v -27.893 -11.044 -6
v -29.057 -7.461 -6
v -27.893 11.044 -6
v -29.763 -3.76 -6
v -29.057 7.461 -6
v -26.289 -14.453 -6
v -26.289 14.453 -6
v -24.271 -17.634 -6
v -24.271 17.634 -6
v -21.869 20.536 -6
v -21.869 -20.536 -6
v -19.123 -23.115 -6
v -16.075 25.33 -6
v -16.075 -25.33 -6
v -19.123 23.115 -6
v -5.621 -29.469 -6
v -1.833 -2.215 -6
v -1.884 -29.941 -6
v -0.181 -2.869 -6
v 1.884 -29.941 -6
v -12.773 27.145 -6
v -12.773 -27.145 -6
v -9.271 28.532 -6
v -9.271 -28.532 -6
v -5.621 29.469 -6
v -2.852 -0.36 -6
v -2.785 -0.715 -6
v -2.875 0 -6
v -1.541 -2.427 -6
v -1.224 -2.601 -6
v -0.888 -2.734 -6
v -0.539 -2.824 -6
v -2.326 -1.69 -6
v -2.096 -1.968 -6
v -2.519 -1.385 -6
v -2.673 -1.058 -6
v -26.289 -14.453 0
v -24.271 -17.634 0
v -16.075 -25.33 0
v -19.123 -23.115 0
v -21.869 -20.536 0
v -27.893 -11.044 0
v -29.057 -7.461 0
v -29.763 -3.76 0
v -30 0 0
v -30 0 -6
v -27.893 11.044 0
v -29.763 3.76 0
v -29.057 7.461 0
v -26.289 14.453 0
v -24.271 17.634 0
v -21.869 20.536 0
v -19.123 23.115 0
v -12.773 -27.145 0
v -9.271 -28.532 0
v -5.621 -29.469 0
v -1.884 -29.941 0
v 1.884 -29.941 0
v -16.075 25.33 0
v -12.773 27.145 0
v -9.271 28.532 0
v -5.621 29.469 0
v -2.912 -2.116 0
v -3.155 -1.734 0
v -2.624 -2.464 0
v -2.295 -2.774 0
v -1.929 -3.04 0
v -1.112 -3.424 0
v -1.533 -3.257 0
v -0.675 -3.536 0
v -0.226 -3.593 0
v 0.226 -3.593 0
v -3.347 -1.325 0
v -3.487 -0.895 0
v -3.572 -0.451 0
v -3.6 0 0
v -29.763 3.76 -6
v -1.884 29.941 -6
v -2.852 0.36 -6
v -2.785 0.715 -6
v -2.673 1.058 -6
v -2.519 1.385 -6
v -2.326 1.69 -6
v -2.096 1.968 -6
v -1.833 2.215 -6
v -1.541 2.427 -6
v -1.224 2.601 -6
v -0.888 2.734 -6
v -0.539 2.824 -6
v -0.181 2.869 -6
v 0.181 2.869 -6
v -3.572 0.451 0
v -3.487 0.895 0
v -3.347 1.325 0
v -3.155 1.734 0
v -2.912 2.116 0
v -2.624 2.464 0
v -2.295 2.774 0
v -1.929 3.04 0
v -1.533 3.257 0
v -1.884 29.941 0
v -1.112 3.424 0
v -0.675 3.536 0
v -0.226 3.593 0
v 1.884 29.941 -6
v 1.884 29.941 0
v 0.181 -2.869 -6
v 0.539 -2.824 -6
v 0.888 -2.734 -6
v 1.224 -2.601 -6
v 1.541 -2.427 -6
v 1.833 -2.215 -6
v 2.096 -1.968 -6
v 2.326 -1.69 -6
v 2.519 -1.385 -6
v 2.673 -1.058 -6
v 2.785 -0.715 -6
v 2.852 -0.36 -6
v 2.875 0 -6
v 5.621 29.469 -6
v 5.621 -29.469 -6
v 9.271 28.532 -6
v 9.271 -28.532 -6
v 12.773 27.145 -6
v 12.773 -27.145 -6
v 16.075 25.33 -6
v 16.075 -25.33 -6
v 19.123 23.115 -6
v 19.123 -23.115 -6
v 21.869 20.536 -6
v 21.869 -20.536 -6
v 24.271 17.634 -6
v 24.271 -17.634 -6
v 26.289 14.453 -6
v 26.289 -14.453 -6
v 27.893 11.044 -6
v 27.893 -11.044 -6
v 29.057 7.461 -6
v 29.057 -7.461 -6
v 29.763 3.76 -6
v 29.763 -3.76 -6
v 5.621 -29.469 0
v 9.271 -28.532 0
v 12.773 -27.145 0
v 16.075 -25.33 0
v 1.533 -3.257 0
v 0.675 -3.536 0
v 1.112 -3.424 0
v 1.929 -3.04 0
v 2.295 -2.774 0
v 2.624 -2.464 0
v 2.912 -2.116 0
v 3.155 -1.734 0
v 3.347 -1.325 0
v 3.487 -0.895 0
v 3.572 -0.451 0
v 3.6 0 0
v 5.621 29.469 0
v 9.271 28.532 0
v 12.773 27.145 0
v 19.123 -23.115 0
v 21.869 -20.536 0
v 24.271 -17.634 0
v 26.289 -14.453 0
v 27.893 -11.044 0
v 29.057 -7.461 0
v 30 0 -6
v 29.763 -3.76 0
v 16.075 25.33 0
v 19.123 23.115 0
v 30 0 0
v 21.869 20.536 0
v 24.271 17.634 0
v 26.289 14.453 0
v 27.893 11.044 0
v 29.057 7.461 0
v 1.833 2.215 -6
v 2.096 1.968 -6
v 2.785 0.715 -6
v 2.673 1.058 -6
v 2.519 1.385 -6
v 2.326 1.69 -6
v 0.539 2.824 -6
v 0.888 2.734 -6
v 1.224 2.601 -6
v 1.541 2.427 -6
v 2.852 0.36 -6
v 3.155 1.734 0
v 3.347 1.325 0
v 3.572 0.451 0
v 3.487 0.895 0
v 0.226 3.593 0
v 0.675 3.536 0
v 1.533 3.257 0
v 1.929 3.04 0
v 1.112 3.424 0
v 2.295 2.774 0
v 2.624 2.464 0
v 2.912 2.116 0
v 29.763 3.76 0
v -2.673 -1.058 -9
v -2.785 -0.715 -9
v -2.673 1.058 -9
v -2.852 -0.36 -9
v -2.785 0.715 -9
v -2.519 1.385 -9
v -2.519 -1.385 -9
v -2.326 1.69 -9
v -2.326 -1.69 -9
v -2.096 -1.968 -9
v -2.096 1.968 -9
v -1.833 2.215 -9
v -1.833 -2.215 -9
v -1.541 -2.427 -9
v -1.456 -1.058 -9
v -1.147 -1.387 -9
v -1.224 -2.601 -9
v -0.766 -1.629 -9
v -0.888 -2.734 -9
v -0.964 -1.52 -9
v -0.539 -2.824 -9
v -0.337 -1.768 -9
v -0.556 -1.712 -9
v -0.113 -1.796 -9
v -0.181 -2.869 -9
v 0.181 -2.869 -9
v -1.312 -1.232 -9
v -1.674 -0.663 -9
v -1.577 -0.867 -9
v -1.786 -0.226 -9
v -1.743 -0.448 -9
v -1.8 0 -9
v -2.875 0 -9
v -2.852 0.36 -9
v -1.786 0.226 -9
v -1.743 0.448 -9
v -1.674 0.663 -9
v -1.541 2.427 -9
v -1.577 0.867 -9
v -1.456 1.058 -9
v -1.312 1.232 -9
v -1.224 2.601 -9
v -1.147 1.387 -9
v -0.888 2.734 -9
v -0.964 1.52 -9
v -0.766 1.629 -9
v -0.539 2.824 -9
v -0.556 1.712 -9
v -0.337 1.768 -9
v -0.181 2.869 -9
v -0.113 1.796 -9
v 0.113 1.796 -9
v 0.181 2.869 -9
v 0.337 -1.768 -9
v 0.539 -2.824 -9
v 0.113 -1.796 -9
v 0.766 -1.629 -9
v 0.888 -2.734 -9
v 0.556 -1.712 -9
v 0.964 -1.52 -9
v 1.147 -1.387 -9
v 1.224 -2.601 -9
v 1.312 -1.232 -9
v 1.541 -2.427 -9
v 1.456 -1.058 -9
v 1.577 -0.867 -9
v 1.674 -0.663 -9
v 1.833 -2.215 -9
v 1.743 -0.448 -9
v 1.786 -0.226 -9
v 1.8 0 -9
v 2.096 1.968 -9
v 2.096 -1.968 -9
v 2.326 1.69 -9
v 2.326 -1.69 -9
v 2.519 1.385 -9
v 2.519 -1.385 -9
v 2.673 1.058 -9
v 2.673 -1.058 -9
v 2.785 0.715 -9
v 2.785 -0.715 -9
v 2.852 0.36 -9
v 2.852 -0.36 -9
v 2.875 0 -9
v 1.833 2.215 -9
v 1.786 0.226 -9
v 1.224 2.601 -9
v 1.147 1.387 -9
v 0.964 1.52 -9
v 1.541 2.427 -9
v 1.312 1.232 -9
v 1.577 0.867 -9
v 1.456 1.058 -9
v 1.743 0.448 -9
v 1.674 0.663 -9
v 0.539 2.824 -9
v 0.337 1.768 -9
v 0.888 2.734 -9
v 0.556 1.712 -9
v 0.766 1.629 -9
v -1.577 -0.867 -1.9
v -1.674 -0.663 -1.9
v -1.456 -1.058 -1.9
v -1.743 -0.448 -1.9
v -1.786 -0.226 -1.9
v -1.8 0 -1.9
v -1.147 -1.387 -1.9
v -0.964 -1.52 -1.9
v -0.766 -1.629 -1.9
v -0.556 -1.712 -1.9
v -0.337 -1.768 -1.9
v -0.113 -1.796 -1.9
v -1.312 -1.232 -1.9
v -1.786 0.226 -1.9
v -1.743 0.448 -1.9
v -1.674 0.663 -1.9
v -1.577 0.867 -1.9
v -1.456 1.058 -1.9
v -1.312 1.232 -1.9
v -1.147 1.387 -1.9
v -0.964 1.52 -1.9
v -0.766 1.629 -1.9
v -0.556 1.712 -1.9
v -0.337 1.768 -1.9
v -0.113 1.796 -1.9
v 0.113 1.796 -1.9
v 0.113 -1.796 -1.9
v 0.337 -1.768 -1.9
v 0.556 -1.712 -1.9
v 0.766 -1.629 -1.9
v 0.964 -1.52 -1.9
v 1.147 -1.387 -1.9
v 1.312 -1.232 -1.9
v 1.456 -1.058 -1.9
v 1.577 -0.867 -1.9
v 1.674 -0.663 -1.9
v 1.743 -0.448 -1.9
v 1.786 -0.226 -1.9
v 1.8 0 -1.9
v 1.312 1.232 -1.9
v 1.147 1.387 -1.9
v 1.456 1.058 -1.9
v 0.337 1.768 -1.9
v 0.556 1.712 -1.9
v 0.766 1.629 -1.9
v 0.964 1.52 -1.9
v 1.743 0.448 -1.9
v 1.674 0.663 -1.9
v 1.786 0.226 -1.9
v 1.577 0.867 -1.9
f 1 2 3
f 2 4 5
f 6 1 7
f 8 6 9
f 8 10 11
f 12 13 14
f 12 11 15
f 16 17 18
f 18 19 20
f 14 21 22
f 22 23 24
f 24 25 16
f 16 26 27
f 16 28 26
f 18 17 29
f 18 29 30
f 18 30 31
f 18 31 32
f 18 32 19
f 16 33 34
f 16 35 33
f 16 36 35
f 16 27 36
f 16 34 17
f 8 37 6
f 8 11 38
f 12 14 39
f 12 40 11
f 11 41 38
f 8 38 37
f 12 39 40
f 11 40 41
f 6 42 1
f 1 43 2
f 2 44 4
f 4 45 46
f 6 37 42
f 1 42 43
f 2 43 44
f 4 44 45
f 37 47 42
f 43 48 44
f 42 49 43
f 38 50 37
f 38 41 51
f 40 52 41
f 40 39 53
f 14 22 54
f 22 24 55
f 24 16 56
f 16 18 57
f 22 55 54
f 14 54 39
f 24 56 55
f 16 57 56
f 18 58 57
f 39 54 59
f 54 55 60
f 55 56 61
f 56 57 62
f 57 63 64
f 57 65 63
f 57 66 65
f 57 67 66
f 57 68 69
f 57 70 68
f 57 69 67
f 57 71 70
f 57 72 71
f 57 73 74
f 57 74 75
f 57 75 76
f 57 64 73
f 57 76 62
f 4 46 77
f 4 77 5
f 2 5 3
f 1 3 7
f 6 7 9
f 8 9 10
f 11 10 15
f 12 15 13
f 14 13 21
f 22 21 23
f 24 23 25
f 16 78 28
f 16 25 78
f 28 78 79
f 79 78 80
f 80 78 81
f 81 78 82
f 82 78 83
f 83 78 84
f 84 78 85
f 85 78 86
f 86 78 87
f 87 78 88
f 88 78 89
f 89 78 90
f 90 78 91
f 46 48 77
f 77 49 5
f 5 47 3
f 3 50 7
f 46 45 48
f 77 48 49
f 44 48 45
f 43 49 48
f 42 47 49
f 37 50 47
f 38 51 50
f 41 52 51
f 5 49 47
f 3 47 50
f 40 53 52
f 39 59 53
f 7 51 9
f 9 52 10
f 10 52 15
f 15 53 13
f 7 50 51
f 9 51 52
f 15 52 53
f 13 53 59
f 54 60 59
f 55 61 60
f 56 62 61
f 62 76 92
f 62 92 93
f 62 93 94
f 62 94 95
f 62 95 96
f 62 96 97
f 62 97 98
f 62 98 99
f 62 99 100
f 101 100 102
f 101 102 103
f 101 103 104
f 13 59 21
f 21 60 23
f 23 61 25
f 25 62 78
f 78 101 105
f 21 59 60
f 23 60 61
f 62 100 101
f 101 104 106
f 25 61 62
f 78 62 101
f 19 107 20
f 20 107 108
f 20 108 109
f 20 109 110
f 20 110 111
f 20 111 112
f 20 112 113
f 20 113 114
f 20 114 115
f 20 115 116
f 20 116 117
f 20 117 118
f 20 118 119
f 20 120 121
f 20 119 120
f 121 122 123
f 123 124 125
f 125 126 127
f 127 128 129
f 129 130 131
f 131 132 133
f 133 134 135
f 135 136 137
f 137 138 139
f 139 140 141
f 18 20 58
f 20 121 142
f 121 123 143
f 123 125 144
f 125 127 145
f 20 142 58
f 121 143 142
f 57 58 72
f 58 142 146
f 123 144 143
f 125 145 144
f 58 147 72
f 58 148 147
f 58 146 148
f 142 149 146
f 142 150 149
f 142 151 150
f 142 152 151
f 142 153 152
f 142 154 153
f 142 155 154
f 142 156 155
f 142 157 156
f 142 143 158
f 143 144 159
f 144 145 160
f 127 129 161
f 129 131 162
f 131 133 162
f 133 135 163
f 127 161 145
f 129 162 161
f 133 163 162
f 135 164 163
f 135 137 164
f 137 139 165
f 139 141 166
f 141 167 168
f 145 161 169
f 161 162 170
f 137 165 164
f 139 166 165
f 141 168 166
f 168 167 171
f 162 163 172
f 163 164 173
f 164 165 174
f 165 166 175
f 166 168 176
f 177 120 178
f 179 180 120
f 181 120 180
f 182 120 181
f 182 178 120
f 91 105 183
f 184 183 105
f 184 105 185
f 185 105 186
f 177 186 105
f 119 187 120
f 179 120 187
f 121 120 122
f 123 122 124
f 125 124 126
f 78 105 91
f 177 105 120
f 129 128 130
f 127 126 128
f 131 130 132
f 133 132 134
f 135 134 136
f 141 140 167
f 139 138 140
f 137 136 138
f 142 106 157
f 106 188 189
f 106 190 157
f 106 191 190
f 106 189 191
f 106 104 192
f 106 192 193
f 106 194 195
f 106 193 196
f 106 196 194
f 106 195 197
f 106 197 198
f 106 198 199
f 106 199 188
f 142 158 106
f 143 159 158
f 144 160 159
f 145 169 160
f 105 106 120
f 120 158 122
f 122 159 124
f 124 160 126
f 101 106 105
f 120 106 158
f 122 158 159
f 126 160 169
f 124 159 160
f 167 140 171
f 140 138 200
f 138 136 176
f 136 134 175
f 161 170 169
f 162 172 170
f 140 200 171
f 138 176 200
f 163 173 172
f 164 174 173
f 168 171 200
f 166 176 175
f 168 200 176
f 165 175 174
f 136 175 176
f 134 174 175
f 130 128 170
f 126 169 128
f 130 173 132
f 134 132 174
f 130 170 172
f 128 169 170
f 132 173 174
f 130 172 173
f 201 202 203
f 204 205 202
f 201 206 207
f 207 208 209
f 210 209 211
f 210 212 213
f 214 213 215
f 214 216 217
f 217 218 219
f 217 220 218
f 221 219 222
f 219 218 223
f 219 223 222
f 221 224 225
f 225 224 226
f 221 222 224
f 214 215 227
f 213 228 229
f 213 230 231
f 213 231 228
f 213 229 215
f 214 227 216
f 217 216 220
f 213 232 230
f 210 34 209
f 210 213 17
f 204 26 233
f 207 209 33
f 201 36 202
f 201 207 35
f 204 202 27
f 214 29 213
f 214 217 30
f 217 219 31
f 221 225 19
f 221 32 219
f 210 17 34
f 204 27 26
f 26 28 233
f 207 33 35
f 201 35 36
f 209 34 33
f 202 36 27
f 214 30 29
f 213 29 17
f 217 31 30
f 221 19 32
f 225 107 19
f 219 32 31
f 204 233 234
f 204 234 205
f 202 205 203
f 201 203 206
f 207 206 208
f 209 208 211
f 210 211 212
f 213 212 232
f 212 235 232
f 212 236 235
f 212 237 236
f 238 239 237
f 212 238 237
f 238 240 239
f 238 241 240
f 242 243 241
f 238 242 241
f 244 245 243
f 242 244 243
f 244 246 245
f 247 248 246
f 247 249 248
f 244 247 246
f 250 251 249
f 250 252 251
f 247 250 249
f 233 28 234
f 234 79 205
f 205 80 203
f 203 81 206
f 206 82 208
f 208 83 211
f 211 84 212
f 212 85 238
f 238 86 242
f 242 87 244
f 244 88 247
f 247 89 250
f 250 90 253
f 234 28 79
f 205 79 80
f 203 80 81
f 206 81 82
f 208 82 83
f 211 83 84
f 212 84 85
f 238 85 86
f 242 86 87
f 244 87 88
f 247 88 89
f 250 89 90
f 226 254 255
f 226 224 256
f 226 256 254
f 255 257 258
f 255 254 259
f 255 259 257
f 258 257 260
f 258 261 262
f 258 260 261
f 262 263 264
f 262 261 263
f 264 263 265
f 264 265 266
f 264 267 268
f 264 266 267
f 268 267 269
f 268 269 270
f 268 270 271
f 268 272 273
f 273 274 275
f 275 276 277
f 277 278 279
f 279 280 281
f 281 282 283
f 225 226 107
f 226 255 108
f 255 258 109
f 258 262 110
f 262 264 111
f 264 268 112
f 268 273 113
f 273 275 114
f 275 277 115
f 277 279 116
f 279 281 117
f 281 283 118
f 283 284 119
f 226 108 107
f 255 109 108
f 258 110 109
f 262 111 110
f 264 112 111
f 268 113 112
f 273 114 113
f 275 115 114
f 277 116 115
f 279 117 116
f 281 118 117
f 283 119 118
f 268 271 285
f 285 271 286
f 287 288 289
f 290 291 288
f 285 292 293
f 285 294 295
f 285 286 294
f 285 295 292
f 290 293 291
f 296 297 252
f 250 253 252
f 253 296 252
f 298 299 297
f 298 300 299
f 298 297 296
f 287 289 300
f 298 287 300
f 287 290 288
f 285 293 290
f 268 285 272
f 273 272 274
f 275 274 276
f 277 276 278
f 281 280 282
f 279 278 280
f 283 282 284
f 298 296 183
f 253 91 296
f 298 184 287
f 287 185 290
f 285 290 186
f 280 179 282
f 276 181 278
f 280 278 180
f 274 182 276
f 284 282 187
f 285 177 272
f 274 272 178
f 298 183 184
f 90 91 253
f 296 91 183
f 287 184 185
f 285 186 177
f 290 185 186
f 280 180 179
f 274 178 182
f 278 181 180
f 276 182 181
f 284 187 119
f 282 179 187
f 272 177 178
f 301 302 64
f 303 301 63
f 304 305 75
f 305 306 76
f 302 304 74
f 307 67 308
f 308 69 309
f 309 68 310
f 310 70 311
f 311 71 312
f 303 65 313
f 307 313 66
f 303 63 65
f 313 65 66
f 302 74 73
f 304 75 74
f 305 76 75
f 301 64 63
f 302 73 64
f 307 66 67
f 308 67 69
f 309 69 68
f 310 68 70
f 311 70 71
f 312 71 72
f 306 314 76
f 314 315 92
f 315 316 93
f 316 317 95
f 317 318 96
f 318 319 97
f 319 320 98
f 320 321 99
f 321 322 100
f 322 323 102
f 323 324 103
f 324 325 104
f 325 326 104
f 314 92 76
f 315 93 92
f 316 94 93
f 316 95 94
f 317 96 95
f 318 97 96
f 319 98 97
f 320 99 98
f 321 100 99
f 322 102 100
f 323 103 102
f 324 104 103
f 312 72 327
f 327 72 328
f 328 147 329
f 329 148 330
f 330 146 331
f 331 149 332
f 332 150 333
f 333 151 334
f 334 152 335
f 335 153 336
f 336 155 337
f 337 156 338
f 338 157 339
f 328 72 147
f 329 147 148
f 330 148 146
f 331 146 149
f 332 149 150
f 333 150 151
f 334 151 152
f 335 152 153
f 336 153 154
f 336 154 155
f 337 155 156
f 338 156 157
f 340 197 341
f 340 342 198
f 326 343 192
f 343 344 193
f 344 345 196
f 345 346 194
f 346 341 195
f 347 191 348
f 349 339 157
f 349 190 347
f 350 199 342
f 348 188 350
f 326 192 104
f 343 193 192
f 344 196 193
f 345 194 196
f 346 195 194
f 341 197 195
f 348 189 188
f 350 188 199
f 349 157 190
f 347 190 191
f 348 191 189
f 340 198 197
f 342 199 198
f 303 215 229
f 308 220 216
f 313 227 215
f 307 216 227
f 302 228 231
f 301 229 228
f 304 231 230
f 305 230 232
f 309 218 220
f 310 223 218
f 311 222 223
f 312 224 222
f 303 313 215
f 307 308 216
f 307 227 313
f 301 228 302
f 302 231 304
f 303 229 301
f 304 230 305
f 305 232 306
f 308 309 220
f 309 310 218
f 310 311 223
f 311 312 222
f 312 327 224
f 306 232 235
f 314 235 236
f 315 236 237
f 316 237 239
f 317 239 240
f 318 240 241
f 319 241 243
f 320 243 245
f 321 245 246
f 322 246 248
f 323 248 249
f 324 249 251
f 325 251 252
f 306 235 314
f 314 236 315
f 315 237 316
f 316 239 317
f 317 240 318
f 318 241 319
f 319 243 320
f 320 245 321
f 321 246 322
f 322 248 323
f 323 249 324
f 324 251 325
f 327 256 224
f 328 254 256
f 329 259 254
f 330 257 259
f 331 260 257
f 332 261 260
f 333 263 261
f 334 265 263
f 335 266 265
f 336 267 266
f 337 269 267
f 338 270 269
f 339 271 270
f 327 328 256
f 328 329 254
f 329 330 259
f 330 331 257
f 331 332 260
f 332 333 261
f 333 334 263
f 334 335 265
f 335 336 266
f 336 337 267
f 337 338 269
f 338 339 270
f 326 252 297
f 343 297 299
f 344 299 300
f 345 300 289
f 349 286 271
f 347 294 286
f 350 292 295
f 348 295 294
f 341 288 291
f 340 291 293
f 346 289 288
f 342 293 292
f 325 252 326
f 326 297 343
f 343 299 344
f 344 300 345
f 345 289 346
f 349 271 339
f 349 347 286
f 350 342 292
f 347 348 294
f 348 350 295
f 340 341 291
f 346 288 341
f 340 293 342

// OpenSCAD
$fn = 50;


difference() {
	union() {
		translate(v = [0, 0, -6.0000000000]) {
			cylinder(h = 6, r = 30.0000000000);
		}
		#translate(v = [0, 0, -9.0000000000]) {
			cylinder(h = 9, r = 2.8750000000);
		}
	}
	union() {
		translate(v = [0, 0, 0]) {
			rotate(a = [0, 0, 0]) {
				difference() {
					union() {
						translate(v = [0, 0, -9.0000000000]) {
							cylinder(h = 9, r = 1.5000000000);
						}
						translate(v = [0, 0, -1.9000000000]) {
							cylinder(h = 1.9000000000, r1 = 1.8000000000, r2 = 3.6000000000);
						}
						translate(v = [0, 0, -9.0000000000]) {
							cylinder(h = 9, r = 1.8000000000);
						}
						translate(v = [0, 0, -9.0000000000]) {
							cylinder(h = 9, r = 1.5000000000);
						}
					}
					union();
				}
			}
		}
	}
}
